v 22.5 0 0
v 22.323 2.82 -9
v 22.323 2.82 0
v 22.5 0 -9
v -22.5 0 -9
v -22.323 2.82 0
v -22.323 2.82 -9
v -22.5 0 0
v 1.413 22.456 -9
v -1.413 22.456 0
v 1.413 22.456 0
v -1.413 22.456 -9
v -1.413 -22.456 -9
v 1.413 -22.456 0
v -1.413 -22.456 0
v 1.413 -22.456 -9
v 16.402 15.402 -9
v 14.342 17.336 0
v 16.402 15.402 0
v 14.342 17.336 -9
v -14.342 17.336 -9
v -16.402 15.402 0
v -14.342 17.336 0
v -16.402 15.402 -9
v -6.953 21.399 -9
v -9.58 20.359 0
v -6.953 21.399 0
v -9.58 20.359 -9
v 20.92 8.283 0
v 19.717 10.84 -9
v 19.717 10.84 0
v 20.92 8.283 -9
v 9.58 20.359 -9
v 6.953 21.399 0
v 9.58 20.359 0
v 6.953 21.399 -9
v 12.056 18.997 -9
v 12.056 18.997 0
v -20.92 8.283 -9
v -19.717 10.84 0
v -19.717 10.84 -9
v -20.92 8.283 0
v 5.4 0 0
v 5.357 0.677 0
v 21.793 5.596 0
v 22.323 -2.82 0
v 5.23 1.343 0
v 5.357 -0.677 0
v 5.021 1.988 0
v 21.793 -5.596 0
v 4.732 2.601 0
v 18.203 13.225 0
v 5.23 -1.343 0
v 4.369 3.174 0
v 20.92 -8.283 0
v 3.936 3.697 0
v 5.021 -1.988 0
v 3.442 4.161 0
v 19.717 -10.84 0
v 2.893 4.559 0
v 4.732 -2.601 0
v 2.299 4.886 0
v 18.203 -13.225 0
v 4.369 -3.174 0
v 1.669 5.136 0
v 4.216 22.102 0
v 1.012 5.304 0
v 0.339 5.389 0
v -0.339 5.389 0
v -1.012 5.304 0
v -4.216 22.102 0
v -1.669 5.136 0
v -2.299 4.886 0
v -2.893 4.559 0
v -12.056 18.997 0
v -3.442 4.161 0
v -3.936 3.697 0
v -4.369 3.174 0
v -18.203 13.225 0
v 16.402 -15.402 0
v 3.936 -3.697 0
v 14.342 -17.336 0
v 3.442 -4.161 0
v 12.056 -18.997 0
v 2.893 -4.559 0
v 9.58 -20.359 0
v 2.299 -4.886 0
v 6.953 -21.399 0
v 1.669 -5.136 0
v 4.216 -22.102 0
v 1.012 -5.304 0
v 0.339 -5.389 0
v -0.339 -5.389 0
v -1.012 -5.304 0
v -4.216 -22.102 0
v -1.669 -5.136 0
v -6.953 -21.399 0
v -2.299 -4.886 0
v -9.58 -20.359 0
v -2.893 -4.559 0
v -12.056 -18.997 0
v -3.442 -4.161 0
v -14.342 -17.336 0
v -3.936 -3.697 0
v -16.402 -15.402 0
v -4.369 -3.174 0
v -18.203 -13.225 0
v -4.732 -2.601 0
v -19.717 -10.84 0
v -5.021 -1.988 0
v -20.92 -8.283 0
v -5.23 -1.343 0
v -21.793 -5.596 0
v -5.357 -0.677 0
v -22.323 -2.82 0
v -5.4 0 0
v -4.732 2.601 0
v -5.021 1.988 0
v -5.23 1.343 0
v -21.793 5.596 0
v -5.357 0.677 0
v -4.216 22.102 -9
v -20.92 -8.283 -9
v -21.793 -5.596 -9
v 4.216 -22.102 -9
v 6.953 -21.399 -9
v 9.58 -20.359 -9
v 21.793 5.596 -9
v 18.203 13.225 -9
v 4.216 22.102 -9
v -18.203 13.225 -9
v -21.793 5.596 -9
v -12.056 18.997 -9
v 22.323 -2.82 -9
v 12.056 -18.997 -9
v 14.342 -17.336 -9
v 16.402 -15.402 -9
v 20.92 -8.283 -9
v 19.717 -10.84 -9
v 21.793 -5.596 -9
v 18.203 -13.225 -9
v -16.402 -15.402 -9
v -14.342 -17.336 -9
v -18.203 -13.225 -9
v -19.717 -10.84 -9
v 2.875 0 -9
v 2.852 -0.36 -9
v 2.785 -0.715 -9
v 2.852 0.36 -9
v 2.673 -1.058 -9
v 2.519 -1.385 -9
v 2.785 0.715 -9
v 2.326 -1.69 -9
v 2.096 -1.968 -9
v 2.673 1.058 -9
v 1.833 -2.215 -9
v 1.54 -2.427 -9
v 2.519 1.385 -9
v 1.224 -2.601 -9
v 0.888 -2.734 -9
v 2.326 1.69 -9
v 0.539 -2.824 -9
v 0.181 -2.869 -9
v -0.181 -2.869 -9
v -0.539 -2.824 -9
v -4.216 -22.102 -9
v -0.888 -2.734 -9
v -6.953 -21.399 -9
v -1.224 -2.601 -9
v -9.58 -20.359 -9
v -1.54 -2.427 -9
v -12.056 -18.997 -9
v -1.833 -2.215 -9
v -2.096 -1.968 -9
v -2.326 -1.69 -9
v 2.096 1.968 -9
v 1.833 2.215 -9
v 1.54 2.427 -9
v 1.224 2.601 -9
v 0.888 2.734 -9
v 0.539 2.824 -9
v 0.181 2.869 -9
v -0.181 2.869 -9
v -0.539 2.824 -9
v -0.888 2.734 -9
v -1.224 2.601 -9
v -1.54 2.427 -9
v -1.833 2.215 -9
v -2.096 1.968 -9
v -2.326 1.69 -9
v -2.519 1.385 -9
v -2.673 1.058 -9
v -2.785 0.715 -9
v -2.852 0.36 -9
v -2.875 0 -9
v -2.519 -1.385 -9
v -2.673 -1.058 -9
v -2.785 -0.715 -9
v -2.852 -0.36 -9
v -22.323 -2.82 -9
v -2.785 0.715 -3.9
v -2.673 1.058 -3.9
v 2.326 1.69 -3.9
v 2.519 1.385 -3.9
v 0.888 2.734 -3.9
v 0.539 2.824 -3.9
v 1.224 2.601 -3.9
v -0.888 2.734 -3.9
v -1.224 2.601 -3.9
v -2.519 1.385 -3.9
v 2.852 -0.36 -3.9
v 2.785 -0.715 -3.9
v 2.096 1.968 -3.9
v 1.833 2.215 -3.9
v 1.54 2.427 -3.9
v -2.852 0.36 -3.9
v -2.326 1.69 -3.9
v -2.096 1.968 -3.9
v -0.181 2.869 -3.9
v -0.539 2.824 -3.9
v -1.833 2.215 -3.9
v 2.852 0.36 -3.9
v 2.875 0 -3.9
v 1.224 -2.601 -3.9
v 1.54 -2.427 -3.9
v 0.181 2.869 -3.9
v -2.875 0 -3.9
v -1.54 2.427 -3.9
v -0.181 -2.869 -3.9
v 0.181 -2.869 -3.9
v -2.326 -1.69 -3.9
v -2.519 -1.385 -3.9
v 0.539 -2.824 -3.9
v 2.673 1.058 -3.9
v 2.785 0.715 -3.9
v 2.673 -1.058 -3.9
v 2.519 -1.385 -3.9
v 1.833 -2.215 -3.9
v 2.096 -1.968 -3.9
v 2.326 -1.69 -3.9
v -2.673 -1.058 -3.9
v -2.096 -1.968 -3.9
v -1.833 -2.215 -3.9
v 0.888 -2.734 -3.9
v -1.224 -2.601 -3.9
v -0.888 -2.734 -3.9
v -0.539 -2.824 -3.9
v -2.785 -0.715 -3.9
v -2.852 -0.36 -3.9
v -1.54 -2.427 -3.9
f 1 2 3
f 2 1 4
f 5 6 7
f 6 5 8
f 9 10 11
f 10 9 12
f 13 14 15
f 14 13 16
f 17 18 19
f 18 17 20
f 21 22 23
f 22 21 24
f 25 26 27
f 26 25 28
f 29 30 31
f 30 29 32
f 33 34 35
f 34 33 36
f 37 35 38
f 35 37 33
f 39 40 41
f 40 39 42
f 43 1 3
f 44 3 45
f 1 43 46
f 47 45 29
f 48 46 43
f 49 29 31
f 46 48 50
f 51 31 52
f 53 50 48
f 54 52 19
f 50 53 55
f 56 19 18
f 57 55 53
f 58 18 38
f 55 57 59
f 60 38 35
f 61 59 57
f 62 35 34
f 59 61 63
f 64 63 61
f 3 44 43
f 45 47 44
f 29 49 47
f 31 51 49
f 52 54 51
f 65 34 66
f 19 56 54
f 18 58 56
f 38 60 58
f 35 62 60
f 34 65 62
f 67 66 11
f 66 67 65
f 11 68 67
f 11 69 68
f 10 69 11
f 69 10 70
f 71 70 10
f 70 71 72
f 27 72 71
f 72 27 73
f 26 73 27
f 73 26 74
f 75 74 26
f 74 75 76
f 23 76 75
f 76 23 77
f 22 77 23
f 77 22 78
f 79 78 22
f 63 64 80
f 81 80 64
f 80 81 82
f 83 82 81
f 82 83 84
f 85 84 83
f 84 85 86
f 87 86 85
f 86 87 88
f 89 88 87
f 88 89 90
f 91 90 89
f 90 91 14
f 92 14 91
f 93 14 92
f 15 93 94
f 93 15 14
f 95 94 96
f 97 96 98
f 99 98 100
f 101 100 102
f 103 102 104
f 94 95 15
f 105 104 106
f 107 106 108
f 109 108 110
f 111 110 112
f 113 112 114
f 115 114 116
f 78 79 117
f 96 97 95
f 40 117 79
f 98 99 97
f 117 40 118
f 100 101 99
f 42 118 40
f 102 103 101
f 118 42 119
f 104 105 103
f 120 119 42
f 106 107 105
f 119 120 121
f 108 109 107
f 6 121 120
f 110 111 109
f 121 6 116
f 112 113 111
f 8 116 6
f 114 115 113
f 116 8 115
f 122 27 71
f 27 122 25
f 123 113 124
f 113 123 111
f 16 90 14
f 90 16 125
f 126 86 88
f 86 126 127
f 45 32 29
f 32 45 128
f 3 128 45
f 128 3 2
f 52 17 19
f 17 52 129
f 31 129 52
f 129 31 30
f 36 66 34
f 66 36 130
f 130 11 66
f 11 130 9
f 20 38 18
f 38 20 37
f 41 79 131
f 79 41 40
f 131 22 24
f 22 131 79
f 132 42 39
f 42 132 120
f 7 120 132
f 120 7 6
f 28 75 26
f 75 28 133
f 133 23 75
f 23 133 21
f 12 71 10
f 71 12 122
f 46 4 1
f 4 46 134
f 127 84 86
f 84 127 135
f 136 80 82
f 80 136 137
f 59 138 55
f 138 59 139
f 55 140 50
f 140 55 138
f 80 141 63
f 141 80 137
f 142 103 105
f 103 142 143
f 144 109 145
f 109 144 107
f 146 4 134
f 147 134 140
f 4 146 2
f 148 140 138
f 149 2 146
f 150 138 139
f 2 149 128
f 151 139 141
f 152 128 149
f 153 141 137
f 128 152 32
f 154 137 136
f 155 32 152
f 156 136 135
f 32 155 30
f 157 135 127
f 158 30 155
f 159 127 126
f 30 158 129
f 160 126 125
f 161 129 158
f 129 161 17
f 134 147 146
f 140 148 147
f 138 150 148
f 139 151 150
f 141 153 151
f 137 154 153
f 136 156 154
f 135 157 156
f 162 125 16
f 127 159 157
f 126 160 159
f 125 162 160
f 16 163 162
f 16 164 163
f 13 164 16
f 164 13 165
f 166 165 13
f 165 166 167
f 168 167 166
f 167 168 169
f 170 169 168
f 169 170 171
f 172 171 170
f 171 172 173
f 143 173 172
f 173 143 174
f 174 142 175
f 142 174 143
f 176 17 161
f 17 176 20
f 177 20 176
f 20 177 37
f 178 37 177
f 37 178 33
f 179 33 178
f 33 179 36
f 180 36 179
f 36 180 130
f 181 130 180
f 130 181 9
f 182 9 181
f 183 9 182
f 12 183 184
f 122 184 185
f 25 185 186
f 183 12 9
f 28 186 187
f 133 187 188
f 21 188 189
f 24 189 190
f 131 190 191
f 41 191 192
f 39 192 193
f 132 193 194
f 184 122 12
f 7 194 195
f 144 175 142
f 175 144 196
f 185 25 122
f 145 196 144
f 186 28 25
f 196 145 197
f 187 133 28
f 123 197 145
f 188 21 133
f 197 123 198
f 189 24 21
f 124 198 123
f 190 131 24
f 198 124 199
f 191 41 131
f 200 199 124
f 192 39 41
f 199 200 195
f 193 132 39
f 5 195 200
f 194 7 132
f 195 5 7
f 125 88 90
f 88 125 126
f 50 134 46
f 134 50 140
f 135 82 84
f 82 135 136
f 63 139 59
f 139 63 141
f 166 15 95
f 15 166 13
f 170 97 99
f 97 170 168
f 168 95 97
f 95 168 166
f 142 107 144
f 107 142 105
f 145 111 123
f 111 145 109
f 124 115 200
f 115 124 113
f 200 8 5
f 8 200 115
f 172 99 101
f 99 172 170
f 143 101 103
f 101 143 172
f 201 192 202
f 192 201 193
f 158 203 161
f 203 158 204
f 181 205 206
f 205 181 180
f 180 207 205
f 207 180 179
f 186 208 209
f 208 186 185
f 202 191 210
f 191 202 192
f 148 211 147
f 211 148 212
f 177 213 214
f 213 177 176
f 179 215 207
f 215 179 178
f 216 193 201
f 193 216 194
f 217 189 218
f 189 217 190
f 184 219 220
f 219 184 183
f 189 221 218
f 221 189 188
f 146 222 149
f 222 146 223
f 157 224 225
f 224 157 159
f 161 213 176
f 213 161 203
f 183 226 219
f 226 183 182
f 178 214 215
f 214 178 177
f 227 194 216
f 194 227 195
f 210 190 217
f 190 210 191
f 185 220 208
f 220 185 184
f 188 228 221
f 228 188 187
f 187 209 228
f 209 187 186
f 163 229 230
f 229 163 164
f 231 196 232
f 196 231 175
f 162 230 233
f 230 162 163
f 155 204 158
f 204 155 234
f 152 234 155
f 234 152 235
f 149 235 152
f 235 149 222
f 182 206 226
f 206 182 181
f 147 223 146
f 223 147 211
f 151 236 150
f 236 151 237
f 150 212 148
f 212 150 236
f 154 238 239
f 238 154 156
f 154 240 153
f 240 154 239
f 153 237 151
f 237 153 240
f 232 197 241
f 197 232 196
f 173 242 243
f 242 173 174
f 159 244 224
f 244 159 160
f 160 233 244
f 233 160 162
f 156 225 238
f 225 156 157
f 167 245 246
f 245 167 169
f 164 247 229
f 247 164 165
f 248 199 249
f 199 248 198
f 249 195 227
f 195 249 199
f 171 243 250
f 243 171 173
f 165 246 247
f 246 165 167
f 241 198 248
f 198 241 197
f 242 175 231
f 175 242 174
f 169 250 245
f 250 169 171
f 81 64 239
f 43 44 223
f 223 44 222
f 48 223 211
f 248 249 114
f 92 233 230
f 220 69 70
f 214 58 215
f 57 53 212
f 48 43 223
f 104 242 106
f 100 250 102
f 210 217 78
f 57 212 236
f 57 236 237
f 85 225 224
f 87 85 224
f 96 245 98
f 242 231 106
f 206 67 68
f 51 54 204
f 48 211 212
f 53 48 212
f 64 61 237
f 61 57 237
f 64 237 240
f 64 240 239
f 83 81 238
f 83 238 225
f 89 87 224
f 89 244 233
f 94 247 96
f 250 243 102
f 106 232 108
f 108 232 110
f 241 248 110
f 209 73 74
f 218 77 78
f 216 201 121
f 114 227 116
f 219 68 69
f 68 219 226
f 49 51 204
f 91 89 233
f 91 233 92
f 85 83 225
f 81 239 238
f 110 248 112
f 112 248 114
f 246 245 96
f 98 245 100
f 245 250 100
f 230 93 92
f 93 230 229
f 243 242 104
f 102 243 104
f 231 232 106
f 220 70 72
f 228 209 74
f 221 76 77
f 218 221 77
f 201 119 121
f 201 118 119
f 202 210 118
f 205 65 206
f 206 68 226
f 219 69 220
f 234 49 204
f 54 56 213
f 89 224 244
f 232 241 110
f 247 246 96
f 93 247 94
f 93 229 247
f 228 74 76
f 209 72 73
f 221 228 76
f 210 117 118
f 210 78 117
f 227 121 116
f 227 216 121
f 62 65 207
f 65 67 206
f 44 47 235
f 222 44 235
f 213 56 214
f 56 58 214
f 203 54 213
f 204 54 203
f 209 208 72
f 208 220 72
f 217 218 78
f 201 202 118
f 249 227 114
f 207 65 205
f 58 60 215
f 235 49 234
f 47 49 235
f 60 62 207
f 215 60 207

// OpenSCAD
$fn = 50;


difference() {
	union() {
		translate(v = [0, 0, -9.0000000000]) {
			cylinder(h = 9, r = 22.5000000000);
		}
		#translate(v = [0, 0, -12.0000000000]) {
			cylinder(h = 12, r = 2.8750000000);
		}
	}
	union() {
		translate(v = [0, 0, 0]) {
			rotate(a = [0, 0, 0]) {
				difference() {
					union() {
						translate(v = [0, 0, -12.0000000000]) {
							cylinder(h = 12, r = 2.6000000000);
						}
						translate(v = [0, 0, -3.9000000000]) {
							cylinder(h = 3.9000000000, r1 = 2.8750000000, r2 = 5.4000000000);
						}
						translate(v = [0, 0, -12.0000000000]) {
							cylinder(h = 12, r = 2.8750000000);
						}
						translate(v = [0, 0, -12.0000000000]) {
							cylinder(h = 12, r = 2.6000000000);
						}
					}
					union();
				}
			}
		}
	}
}
